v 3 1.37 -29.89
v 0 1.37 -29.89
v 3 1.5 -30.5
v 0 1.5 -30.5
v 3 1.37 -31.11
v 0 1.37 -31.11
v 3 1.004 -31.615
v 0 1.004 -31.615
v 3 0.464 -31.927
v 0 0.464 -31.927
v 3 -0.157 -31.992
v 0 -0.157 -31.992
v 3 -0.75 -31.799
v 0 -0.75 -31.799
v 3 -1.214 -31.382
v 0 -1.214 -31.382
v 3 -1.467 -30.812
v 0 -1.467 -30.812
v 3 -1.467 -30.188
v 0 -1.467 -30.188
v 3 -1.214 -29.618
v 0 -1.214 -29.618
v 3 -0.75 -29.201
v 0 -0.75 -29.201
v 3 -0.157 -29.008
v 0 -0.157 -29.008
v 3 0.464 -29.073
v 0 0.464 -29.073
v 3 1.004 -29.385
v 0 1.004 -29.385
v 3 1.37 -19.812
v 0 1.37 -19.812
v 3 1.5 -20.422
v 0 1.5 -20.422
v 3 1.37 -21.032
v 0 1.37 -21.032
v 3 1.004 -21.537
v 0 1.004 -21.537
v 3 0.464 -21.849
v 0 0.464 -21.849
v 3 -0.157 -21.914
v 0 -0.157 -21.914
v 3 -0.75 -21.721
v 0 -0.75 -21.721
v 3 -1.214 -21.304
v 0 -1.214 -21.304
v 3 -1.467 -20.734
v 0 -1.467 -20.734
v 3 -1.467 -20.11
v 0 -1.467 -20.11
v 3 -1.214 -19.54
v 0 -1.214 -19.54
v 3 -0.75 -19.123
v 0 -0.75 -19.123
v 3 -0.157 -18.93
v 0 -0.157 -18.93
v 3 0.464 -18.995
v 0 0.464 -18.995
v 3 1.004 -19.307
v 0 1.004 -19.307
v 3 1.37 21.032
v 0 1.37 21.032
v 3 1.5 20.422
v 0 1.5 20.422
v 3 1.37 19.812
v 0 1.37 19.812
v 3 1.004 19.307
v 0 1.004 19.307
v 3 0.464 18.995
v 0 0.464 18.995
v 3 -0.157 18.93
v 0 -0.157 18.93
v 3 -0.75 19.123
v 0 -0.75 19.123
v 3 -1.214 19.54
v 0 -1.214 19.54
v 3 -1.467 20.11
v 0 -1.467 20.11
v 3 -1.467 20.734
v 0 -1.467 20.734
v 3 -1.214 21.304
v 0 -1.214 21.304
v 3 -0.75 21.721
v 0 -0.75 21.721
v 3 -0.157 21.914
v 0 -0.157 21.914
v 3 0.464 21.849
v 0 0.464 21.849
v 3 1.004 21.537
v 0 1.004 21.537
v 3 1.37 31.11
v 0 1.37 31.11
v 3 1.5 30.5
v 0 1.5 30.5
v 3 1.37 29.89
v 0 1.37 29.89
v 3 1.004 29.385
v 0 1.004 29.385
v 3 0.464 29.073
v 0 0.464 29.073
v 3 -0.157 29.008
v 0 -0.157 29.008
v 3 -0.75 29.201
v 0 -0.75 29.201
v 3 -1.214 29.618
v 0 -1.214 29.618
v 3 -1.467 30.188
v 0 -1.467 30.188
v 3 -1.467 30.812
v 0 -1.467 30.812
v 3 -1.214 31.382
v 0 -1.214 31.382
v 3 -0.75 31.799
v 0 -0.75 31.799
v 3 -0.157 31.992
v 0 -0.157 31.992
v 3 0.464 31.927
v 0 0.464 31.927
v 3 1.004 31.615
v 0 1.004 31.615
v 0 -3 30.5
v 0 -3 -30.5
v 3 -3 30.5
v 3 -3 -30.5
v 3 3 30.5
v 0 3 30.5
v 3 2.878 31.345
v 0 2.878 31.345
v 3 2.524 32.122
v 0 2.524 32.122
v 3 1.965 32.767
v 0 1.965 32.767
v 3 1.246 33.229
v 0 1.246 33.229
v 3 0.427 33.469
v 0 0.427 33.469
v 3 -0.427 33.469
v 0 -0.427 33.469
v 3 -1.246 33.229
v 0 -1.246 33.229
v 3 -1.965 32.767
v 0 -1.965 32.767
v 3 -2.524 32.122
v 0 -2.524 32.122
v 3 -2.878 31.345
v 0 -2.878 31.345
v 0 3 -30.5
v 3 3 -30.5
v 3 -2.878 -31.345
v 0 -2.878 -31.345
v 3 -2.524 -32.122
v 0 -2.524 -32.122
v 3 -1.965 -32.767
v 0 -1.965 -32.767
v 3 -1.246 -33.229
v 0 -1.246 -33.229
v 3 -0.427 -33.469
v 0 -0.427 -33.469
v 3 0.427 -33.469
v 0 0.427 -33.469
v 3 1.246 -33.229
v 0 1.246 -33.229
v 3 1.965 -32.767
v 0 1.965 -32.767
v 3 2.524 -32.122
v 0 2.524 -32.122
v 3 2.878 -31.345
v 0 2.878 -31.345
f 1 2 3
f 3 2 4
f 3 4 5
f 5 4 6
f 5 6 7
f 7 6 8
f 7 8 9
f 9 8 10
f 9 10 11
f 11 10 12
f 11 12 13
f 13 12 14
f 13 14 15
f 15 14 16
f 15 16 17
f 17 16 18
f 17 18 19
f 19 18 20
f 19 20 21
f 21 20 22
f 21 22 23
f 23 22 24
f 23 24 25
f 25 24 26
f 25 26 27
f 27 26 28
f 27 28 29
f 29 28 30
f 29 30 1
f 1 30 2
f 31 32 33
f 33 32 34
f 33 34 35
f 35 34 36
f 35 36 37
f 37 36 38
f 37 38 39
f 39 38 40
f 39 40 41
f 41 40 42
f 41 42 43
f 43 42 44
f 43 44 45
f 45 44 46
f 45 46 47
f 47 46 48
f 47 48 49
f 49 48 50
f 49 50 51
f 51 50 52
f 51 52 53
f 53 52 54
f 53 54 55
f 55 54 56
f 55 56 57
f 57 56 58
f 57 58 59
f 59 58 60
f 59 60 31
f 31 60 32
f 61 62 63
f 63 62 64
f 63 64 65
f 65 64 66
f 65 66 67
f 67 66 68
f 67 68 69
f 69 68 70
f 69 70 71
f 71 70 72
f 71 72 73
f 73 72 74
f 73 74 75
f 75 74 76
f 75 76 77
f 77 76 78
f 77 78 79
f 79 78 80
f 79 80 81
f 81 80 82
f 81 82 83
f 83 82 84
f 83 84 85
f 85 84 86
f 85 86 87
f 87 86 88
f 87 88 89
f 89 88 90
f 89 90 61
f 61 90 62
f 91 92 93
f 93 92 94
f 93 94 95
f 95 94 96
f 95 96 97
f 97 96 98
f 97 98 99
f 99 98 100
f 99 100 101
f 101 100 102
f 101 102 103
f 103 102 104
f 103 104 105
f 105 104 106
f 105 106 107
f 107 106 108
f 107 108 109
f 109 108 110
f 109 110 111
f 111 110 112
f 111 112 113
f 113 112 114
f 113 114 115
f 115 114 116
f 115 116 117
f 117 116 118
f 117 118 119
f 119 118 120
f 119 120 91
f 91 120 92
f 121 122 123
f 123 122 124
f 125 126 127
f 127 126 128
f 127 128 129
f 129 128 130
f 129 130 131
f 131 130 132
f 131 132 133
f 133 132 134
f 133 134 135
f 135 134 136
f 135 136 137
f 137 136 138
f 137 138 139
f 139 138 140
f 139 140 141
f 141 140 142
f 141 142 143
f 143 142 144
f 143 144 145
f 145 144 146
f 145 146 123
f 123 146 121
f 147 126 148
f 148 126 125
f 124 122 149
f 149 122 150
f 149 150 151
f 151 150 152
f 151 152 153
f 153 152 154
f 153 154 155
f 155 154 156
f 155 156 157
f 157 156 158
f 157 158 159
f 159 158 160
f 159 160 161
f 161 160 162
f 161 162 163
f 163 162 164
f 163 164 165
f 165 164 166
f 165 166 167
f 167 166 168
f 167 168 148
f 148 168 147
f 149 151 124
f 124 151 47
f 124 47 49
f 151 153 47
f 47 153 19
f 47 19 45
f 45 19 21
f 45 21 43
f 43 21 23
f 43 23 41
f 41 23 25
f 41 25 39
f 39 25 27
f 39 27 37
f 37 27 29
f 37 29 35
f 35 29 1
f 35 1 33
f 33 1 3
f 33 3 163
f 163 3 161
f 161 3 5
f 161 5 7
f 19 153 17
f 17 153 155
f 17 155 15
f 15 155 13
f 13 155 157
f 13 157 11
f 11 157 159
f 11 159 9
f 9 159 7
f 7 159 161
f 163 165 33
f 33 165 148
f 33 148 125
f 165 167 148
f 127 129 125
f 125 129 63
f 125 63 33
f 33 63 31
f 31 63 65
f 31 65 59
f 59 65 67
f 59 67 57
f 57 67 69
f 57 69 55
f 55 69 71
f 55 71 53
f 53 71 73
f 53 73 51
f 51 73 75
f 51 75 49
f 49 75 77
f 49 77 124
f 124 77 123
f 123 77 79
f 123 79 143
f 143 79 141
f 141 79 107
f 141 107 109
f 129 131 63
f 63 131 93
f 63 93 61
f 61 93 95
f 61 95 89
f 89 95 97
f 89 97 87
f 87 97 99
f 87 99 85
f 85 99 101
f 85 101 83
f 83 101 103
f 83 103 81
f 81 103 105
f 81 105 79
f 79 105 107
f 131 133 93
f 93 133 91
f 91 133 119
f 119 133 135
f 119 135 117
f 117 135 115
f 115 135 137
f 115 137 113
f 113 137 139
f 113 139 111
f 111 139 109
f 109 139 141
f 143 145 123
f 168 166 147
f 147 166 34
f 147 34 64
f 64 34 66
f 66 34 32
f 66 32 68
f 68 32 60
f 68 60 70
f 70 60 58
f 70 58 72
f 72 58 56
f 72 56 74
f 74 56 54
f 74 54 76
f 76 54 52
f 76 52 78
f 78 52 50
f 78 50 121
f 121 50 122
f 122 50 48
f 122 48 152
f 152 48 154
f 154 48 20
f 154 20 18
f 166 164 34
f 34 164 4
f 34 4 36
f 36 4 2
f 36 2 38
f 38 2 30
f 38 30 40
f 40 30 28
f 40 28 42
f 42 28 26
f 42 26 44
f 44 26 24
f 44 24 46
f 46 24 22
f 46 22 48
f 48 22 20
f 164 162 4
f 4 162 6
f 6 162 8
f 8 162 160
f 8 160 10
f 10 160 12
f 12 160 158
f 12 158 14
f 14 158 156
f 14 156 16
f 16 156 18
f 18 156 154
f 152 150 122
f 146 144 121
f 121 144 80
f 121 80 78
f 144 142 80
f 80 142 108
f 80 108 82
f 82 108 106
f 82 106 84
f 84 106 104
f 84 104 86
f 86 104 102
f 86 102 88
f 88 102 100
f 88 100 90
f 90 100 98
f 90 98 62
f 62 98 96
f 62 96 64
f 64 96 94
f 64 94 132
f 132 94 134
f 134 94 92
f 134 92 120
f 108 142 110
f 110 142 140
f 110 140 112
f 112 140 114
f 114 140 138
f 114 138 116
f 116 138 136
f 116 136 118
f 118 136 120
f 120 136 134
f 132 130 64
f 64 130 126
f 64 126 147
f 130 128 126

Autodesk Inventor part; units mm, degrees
ref_plane "YZ Plane" through (0, 0, 0) normal (1, 0, 0) x (0, 1, 0)
ref_plane "XZ Plane" through (0, 0, 0) normal (0, 1, 0) x (-1, 0, 0)
ref_plane "XY Plane" through (0, 0, 0) normal (0, 0, 1) x (1, 0, 0)
sketch "Sketch1" plane through (0, 0, 0) normal (1, 0, 0) x (0, 1, 0)
  line L0 (0, -30.5) -> (0, 30.5)
  line L1 (0, 20.422) -> (0, -20.422)
  circle A0 centre (0, 20.422) radius 1.5
  circle A1 centre (0, 30.5) radius 1.5
  circle A2 centre (0, -20.422) radius 1.5
  circle A3 centre (0, -30.5) radius 1.5
  line L2 (0, 30.5) -> (0, -30.5) construction
  line L3 (-3, 30.5) -> (-3, -30.5)
  line L4 (3, -30.5) -> (3, 30.5)
  arc A4 (3, 30.5) -> (-3, 30.5) centre (0, 30.5) ccw
  arc A5 (-3, -30.5) -> (3, -30.5) centre (0, -30.5) ccw
  point P0 (0, 0)
  point P1 (0, 0)
  dimension "d0" = 61
  dimension "d1" = 40.844
  dimension "d2" = 3
  dimension "d3" = 3
  dimension "d4" = 3
  dimension "d5" = 3
  dimension "d6" = 6
extrude "Extrusion1" add sketch "Sketch1" along normal blind 3
properties part number "wago_support_support"
